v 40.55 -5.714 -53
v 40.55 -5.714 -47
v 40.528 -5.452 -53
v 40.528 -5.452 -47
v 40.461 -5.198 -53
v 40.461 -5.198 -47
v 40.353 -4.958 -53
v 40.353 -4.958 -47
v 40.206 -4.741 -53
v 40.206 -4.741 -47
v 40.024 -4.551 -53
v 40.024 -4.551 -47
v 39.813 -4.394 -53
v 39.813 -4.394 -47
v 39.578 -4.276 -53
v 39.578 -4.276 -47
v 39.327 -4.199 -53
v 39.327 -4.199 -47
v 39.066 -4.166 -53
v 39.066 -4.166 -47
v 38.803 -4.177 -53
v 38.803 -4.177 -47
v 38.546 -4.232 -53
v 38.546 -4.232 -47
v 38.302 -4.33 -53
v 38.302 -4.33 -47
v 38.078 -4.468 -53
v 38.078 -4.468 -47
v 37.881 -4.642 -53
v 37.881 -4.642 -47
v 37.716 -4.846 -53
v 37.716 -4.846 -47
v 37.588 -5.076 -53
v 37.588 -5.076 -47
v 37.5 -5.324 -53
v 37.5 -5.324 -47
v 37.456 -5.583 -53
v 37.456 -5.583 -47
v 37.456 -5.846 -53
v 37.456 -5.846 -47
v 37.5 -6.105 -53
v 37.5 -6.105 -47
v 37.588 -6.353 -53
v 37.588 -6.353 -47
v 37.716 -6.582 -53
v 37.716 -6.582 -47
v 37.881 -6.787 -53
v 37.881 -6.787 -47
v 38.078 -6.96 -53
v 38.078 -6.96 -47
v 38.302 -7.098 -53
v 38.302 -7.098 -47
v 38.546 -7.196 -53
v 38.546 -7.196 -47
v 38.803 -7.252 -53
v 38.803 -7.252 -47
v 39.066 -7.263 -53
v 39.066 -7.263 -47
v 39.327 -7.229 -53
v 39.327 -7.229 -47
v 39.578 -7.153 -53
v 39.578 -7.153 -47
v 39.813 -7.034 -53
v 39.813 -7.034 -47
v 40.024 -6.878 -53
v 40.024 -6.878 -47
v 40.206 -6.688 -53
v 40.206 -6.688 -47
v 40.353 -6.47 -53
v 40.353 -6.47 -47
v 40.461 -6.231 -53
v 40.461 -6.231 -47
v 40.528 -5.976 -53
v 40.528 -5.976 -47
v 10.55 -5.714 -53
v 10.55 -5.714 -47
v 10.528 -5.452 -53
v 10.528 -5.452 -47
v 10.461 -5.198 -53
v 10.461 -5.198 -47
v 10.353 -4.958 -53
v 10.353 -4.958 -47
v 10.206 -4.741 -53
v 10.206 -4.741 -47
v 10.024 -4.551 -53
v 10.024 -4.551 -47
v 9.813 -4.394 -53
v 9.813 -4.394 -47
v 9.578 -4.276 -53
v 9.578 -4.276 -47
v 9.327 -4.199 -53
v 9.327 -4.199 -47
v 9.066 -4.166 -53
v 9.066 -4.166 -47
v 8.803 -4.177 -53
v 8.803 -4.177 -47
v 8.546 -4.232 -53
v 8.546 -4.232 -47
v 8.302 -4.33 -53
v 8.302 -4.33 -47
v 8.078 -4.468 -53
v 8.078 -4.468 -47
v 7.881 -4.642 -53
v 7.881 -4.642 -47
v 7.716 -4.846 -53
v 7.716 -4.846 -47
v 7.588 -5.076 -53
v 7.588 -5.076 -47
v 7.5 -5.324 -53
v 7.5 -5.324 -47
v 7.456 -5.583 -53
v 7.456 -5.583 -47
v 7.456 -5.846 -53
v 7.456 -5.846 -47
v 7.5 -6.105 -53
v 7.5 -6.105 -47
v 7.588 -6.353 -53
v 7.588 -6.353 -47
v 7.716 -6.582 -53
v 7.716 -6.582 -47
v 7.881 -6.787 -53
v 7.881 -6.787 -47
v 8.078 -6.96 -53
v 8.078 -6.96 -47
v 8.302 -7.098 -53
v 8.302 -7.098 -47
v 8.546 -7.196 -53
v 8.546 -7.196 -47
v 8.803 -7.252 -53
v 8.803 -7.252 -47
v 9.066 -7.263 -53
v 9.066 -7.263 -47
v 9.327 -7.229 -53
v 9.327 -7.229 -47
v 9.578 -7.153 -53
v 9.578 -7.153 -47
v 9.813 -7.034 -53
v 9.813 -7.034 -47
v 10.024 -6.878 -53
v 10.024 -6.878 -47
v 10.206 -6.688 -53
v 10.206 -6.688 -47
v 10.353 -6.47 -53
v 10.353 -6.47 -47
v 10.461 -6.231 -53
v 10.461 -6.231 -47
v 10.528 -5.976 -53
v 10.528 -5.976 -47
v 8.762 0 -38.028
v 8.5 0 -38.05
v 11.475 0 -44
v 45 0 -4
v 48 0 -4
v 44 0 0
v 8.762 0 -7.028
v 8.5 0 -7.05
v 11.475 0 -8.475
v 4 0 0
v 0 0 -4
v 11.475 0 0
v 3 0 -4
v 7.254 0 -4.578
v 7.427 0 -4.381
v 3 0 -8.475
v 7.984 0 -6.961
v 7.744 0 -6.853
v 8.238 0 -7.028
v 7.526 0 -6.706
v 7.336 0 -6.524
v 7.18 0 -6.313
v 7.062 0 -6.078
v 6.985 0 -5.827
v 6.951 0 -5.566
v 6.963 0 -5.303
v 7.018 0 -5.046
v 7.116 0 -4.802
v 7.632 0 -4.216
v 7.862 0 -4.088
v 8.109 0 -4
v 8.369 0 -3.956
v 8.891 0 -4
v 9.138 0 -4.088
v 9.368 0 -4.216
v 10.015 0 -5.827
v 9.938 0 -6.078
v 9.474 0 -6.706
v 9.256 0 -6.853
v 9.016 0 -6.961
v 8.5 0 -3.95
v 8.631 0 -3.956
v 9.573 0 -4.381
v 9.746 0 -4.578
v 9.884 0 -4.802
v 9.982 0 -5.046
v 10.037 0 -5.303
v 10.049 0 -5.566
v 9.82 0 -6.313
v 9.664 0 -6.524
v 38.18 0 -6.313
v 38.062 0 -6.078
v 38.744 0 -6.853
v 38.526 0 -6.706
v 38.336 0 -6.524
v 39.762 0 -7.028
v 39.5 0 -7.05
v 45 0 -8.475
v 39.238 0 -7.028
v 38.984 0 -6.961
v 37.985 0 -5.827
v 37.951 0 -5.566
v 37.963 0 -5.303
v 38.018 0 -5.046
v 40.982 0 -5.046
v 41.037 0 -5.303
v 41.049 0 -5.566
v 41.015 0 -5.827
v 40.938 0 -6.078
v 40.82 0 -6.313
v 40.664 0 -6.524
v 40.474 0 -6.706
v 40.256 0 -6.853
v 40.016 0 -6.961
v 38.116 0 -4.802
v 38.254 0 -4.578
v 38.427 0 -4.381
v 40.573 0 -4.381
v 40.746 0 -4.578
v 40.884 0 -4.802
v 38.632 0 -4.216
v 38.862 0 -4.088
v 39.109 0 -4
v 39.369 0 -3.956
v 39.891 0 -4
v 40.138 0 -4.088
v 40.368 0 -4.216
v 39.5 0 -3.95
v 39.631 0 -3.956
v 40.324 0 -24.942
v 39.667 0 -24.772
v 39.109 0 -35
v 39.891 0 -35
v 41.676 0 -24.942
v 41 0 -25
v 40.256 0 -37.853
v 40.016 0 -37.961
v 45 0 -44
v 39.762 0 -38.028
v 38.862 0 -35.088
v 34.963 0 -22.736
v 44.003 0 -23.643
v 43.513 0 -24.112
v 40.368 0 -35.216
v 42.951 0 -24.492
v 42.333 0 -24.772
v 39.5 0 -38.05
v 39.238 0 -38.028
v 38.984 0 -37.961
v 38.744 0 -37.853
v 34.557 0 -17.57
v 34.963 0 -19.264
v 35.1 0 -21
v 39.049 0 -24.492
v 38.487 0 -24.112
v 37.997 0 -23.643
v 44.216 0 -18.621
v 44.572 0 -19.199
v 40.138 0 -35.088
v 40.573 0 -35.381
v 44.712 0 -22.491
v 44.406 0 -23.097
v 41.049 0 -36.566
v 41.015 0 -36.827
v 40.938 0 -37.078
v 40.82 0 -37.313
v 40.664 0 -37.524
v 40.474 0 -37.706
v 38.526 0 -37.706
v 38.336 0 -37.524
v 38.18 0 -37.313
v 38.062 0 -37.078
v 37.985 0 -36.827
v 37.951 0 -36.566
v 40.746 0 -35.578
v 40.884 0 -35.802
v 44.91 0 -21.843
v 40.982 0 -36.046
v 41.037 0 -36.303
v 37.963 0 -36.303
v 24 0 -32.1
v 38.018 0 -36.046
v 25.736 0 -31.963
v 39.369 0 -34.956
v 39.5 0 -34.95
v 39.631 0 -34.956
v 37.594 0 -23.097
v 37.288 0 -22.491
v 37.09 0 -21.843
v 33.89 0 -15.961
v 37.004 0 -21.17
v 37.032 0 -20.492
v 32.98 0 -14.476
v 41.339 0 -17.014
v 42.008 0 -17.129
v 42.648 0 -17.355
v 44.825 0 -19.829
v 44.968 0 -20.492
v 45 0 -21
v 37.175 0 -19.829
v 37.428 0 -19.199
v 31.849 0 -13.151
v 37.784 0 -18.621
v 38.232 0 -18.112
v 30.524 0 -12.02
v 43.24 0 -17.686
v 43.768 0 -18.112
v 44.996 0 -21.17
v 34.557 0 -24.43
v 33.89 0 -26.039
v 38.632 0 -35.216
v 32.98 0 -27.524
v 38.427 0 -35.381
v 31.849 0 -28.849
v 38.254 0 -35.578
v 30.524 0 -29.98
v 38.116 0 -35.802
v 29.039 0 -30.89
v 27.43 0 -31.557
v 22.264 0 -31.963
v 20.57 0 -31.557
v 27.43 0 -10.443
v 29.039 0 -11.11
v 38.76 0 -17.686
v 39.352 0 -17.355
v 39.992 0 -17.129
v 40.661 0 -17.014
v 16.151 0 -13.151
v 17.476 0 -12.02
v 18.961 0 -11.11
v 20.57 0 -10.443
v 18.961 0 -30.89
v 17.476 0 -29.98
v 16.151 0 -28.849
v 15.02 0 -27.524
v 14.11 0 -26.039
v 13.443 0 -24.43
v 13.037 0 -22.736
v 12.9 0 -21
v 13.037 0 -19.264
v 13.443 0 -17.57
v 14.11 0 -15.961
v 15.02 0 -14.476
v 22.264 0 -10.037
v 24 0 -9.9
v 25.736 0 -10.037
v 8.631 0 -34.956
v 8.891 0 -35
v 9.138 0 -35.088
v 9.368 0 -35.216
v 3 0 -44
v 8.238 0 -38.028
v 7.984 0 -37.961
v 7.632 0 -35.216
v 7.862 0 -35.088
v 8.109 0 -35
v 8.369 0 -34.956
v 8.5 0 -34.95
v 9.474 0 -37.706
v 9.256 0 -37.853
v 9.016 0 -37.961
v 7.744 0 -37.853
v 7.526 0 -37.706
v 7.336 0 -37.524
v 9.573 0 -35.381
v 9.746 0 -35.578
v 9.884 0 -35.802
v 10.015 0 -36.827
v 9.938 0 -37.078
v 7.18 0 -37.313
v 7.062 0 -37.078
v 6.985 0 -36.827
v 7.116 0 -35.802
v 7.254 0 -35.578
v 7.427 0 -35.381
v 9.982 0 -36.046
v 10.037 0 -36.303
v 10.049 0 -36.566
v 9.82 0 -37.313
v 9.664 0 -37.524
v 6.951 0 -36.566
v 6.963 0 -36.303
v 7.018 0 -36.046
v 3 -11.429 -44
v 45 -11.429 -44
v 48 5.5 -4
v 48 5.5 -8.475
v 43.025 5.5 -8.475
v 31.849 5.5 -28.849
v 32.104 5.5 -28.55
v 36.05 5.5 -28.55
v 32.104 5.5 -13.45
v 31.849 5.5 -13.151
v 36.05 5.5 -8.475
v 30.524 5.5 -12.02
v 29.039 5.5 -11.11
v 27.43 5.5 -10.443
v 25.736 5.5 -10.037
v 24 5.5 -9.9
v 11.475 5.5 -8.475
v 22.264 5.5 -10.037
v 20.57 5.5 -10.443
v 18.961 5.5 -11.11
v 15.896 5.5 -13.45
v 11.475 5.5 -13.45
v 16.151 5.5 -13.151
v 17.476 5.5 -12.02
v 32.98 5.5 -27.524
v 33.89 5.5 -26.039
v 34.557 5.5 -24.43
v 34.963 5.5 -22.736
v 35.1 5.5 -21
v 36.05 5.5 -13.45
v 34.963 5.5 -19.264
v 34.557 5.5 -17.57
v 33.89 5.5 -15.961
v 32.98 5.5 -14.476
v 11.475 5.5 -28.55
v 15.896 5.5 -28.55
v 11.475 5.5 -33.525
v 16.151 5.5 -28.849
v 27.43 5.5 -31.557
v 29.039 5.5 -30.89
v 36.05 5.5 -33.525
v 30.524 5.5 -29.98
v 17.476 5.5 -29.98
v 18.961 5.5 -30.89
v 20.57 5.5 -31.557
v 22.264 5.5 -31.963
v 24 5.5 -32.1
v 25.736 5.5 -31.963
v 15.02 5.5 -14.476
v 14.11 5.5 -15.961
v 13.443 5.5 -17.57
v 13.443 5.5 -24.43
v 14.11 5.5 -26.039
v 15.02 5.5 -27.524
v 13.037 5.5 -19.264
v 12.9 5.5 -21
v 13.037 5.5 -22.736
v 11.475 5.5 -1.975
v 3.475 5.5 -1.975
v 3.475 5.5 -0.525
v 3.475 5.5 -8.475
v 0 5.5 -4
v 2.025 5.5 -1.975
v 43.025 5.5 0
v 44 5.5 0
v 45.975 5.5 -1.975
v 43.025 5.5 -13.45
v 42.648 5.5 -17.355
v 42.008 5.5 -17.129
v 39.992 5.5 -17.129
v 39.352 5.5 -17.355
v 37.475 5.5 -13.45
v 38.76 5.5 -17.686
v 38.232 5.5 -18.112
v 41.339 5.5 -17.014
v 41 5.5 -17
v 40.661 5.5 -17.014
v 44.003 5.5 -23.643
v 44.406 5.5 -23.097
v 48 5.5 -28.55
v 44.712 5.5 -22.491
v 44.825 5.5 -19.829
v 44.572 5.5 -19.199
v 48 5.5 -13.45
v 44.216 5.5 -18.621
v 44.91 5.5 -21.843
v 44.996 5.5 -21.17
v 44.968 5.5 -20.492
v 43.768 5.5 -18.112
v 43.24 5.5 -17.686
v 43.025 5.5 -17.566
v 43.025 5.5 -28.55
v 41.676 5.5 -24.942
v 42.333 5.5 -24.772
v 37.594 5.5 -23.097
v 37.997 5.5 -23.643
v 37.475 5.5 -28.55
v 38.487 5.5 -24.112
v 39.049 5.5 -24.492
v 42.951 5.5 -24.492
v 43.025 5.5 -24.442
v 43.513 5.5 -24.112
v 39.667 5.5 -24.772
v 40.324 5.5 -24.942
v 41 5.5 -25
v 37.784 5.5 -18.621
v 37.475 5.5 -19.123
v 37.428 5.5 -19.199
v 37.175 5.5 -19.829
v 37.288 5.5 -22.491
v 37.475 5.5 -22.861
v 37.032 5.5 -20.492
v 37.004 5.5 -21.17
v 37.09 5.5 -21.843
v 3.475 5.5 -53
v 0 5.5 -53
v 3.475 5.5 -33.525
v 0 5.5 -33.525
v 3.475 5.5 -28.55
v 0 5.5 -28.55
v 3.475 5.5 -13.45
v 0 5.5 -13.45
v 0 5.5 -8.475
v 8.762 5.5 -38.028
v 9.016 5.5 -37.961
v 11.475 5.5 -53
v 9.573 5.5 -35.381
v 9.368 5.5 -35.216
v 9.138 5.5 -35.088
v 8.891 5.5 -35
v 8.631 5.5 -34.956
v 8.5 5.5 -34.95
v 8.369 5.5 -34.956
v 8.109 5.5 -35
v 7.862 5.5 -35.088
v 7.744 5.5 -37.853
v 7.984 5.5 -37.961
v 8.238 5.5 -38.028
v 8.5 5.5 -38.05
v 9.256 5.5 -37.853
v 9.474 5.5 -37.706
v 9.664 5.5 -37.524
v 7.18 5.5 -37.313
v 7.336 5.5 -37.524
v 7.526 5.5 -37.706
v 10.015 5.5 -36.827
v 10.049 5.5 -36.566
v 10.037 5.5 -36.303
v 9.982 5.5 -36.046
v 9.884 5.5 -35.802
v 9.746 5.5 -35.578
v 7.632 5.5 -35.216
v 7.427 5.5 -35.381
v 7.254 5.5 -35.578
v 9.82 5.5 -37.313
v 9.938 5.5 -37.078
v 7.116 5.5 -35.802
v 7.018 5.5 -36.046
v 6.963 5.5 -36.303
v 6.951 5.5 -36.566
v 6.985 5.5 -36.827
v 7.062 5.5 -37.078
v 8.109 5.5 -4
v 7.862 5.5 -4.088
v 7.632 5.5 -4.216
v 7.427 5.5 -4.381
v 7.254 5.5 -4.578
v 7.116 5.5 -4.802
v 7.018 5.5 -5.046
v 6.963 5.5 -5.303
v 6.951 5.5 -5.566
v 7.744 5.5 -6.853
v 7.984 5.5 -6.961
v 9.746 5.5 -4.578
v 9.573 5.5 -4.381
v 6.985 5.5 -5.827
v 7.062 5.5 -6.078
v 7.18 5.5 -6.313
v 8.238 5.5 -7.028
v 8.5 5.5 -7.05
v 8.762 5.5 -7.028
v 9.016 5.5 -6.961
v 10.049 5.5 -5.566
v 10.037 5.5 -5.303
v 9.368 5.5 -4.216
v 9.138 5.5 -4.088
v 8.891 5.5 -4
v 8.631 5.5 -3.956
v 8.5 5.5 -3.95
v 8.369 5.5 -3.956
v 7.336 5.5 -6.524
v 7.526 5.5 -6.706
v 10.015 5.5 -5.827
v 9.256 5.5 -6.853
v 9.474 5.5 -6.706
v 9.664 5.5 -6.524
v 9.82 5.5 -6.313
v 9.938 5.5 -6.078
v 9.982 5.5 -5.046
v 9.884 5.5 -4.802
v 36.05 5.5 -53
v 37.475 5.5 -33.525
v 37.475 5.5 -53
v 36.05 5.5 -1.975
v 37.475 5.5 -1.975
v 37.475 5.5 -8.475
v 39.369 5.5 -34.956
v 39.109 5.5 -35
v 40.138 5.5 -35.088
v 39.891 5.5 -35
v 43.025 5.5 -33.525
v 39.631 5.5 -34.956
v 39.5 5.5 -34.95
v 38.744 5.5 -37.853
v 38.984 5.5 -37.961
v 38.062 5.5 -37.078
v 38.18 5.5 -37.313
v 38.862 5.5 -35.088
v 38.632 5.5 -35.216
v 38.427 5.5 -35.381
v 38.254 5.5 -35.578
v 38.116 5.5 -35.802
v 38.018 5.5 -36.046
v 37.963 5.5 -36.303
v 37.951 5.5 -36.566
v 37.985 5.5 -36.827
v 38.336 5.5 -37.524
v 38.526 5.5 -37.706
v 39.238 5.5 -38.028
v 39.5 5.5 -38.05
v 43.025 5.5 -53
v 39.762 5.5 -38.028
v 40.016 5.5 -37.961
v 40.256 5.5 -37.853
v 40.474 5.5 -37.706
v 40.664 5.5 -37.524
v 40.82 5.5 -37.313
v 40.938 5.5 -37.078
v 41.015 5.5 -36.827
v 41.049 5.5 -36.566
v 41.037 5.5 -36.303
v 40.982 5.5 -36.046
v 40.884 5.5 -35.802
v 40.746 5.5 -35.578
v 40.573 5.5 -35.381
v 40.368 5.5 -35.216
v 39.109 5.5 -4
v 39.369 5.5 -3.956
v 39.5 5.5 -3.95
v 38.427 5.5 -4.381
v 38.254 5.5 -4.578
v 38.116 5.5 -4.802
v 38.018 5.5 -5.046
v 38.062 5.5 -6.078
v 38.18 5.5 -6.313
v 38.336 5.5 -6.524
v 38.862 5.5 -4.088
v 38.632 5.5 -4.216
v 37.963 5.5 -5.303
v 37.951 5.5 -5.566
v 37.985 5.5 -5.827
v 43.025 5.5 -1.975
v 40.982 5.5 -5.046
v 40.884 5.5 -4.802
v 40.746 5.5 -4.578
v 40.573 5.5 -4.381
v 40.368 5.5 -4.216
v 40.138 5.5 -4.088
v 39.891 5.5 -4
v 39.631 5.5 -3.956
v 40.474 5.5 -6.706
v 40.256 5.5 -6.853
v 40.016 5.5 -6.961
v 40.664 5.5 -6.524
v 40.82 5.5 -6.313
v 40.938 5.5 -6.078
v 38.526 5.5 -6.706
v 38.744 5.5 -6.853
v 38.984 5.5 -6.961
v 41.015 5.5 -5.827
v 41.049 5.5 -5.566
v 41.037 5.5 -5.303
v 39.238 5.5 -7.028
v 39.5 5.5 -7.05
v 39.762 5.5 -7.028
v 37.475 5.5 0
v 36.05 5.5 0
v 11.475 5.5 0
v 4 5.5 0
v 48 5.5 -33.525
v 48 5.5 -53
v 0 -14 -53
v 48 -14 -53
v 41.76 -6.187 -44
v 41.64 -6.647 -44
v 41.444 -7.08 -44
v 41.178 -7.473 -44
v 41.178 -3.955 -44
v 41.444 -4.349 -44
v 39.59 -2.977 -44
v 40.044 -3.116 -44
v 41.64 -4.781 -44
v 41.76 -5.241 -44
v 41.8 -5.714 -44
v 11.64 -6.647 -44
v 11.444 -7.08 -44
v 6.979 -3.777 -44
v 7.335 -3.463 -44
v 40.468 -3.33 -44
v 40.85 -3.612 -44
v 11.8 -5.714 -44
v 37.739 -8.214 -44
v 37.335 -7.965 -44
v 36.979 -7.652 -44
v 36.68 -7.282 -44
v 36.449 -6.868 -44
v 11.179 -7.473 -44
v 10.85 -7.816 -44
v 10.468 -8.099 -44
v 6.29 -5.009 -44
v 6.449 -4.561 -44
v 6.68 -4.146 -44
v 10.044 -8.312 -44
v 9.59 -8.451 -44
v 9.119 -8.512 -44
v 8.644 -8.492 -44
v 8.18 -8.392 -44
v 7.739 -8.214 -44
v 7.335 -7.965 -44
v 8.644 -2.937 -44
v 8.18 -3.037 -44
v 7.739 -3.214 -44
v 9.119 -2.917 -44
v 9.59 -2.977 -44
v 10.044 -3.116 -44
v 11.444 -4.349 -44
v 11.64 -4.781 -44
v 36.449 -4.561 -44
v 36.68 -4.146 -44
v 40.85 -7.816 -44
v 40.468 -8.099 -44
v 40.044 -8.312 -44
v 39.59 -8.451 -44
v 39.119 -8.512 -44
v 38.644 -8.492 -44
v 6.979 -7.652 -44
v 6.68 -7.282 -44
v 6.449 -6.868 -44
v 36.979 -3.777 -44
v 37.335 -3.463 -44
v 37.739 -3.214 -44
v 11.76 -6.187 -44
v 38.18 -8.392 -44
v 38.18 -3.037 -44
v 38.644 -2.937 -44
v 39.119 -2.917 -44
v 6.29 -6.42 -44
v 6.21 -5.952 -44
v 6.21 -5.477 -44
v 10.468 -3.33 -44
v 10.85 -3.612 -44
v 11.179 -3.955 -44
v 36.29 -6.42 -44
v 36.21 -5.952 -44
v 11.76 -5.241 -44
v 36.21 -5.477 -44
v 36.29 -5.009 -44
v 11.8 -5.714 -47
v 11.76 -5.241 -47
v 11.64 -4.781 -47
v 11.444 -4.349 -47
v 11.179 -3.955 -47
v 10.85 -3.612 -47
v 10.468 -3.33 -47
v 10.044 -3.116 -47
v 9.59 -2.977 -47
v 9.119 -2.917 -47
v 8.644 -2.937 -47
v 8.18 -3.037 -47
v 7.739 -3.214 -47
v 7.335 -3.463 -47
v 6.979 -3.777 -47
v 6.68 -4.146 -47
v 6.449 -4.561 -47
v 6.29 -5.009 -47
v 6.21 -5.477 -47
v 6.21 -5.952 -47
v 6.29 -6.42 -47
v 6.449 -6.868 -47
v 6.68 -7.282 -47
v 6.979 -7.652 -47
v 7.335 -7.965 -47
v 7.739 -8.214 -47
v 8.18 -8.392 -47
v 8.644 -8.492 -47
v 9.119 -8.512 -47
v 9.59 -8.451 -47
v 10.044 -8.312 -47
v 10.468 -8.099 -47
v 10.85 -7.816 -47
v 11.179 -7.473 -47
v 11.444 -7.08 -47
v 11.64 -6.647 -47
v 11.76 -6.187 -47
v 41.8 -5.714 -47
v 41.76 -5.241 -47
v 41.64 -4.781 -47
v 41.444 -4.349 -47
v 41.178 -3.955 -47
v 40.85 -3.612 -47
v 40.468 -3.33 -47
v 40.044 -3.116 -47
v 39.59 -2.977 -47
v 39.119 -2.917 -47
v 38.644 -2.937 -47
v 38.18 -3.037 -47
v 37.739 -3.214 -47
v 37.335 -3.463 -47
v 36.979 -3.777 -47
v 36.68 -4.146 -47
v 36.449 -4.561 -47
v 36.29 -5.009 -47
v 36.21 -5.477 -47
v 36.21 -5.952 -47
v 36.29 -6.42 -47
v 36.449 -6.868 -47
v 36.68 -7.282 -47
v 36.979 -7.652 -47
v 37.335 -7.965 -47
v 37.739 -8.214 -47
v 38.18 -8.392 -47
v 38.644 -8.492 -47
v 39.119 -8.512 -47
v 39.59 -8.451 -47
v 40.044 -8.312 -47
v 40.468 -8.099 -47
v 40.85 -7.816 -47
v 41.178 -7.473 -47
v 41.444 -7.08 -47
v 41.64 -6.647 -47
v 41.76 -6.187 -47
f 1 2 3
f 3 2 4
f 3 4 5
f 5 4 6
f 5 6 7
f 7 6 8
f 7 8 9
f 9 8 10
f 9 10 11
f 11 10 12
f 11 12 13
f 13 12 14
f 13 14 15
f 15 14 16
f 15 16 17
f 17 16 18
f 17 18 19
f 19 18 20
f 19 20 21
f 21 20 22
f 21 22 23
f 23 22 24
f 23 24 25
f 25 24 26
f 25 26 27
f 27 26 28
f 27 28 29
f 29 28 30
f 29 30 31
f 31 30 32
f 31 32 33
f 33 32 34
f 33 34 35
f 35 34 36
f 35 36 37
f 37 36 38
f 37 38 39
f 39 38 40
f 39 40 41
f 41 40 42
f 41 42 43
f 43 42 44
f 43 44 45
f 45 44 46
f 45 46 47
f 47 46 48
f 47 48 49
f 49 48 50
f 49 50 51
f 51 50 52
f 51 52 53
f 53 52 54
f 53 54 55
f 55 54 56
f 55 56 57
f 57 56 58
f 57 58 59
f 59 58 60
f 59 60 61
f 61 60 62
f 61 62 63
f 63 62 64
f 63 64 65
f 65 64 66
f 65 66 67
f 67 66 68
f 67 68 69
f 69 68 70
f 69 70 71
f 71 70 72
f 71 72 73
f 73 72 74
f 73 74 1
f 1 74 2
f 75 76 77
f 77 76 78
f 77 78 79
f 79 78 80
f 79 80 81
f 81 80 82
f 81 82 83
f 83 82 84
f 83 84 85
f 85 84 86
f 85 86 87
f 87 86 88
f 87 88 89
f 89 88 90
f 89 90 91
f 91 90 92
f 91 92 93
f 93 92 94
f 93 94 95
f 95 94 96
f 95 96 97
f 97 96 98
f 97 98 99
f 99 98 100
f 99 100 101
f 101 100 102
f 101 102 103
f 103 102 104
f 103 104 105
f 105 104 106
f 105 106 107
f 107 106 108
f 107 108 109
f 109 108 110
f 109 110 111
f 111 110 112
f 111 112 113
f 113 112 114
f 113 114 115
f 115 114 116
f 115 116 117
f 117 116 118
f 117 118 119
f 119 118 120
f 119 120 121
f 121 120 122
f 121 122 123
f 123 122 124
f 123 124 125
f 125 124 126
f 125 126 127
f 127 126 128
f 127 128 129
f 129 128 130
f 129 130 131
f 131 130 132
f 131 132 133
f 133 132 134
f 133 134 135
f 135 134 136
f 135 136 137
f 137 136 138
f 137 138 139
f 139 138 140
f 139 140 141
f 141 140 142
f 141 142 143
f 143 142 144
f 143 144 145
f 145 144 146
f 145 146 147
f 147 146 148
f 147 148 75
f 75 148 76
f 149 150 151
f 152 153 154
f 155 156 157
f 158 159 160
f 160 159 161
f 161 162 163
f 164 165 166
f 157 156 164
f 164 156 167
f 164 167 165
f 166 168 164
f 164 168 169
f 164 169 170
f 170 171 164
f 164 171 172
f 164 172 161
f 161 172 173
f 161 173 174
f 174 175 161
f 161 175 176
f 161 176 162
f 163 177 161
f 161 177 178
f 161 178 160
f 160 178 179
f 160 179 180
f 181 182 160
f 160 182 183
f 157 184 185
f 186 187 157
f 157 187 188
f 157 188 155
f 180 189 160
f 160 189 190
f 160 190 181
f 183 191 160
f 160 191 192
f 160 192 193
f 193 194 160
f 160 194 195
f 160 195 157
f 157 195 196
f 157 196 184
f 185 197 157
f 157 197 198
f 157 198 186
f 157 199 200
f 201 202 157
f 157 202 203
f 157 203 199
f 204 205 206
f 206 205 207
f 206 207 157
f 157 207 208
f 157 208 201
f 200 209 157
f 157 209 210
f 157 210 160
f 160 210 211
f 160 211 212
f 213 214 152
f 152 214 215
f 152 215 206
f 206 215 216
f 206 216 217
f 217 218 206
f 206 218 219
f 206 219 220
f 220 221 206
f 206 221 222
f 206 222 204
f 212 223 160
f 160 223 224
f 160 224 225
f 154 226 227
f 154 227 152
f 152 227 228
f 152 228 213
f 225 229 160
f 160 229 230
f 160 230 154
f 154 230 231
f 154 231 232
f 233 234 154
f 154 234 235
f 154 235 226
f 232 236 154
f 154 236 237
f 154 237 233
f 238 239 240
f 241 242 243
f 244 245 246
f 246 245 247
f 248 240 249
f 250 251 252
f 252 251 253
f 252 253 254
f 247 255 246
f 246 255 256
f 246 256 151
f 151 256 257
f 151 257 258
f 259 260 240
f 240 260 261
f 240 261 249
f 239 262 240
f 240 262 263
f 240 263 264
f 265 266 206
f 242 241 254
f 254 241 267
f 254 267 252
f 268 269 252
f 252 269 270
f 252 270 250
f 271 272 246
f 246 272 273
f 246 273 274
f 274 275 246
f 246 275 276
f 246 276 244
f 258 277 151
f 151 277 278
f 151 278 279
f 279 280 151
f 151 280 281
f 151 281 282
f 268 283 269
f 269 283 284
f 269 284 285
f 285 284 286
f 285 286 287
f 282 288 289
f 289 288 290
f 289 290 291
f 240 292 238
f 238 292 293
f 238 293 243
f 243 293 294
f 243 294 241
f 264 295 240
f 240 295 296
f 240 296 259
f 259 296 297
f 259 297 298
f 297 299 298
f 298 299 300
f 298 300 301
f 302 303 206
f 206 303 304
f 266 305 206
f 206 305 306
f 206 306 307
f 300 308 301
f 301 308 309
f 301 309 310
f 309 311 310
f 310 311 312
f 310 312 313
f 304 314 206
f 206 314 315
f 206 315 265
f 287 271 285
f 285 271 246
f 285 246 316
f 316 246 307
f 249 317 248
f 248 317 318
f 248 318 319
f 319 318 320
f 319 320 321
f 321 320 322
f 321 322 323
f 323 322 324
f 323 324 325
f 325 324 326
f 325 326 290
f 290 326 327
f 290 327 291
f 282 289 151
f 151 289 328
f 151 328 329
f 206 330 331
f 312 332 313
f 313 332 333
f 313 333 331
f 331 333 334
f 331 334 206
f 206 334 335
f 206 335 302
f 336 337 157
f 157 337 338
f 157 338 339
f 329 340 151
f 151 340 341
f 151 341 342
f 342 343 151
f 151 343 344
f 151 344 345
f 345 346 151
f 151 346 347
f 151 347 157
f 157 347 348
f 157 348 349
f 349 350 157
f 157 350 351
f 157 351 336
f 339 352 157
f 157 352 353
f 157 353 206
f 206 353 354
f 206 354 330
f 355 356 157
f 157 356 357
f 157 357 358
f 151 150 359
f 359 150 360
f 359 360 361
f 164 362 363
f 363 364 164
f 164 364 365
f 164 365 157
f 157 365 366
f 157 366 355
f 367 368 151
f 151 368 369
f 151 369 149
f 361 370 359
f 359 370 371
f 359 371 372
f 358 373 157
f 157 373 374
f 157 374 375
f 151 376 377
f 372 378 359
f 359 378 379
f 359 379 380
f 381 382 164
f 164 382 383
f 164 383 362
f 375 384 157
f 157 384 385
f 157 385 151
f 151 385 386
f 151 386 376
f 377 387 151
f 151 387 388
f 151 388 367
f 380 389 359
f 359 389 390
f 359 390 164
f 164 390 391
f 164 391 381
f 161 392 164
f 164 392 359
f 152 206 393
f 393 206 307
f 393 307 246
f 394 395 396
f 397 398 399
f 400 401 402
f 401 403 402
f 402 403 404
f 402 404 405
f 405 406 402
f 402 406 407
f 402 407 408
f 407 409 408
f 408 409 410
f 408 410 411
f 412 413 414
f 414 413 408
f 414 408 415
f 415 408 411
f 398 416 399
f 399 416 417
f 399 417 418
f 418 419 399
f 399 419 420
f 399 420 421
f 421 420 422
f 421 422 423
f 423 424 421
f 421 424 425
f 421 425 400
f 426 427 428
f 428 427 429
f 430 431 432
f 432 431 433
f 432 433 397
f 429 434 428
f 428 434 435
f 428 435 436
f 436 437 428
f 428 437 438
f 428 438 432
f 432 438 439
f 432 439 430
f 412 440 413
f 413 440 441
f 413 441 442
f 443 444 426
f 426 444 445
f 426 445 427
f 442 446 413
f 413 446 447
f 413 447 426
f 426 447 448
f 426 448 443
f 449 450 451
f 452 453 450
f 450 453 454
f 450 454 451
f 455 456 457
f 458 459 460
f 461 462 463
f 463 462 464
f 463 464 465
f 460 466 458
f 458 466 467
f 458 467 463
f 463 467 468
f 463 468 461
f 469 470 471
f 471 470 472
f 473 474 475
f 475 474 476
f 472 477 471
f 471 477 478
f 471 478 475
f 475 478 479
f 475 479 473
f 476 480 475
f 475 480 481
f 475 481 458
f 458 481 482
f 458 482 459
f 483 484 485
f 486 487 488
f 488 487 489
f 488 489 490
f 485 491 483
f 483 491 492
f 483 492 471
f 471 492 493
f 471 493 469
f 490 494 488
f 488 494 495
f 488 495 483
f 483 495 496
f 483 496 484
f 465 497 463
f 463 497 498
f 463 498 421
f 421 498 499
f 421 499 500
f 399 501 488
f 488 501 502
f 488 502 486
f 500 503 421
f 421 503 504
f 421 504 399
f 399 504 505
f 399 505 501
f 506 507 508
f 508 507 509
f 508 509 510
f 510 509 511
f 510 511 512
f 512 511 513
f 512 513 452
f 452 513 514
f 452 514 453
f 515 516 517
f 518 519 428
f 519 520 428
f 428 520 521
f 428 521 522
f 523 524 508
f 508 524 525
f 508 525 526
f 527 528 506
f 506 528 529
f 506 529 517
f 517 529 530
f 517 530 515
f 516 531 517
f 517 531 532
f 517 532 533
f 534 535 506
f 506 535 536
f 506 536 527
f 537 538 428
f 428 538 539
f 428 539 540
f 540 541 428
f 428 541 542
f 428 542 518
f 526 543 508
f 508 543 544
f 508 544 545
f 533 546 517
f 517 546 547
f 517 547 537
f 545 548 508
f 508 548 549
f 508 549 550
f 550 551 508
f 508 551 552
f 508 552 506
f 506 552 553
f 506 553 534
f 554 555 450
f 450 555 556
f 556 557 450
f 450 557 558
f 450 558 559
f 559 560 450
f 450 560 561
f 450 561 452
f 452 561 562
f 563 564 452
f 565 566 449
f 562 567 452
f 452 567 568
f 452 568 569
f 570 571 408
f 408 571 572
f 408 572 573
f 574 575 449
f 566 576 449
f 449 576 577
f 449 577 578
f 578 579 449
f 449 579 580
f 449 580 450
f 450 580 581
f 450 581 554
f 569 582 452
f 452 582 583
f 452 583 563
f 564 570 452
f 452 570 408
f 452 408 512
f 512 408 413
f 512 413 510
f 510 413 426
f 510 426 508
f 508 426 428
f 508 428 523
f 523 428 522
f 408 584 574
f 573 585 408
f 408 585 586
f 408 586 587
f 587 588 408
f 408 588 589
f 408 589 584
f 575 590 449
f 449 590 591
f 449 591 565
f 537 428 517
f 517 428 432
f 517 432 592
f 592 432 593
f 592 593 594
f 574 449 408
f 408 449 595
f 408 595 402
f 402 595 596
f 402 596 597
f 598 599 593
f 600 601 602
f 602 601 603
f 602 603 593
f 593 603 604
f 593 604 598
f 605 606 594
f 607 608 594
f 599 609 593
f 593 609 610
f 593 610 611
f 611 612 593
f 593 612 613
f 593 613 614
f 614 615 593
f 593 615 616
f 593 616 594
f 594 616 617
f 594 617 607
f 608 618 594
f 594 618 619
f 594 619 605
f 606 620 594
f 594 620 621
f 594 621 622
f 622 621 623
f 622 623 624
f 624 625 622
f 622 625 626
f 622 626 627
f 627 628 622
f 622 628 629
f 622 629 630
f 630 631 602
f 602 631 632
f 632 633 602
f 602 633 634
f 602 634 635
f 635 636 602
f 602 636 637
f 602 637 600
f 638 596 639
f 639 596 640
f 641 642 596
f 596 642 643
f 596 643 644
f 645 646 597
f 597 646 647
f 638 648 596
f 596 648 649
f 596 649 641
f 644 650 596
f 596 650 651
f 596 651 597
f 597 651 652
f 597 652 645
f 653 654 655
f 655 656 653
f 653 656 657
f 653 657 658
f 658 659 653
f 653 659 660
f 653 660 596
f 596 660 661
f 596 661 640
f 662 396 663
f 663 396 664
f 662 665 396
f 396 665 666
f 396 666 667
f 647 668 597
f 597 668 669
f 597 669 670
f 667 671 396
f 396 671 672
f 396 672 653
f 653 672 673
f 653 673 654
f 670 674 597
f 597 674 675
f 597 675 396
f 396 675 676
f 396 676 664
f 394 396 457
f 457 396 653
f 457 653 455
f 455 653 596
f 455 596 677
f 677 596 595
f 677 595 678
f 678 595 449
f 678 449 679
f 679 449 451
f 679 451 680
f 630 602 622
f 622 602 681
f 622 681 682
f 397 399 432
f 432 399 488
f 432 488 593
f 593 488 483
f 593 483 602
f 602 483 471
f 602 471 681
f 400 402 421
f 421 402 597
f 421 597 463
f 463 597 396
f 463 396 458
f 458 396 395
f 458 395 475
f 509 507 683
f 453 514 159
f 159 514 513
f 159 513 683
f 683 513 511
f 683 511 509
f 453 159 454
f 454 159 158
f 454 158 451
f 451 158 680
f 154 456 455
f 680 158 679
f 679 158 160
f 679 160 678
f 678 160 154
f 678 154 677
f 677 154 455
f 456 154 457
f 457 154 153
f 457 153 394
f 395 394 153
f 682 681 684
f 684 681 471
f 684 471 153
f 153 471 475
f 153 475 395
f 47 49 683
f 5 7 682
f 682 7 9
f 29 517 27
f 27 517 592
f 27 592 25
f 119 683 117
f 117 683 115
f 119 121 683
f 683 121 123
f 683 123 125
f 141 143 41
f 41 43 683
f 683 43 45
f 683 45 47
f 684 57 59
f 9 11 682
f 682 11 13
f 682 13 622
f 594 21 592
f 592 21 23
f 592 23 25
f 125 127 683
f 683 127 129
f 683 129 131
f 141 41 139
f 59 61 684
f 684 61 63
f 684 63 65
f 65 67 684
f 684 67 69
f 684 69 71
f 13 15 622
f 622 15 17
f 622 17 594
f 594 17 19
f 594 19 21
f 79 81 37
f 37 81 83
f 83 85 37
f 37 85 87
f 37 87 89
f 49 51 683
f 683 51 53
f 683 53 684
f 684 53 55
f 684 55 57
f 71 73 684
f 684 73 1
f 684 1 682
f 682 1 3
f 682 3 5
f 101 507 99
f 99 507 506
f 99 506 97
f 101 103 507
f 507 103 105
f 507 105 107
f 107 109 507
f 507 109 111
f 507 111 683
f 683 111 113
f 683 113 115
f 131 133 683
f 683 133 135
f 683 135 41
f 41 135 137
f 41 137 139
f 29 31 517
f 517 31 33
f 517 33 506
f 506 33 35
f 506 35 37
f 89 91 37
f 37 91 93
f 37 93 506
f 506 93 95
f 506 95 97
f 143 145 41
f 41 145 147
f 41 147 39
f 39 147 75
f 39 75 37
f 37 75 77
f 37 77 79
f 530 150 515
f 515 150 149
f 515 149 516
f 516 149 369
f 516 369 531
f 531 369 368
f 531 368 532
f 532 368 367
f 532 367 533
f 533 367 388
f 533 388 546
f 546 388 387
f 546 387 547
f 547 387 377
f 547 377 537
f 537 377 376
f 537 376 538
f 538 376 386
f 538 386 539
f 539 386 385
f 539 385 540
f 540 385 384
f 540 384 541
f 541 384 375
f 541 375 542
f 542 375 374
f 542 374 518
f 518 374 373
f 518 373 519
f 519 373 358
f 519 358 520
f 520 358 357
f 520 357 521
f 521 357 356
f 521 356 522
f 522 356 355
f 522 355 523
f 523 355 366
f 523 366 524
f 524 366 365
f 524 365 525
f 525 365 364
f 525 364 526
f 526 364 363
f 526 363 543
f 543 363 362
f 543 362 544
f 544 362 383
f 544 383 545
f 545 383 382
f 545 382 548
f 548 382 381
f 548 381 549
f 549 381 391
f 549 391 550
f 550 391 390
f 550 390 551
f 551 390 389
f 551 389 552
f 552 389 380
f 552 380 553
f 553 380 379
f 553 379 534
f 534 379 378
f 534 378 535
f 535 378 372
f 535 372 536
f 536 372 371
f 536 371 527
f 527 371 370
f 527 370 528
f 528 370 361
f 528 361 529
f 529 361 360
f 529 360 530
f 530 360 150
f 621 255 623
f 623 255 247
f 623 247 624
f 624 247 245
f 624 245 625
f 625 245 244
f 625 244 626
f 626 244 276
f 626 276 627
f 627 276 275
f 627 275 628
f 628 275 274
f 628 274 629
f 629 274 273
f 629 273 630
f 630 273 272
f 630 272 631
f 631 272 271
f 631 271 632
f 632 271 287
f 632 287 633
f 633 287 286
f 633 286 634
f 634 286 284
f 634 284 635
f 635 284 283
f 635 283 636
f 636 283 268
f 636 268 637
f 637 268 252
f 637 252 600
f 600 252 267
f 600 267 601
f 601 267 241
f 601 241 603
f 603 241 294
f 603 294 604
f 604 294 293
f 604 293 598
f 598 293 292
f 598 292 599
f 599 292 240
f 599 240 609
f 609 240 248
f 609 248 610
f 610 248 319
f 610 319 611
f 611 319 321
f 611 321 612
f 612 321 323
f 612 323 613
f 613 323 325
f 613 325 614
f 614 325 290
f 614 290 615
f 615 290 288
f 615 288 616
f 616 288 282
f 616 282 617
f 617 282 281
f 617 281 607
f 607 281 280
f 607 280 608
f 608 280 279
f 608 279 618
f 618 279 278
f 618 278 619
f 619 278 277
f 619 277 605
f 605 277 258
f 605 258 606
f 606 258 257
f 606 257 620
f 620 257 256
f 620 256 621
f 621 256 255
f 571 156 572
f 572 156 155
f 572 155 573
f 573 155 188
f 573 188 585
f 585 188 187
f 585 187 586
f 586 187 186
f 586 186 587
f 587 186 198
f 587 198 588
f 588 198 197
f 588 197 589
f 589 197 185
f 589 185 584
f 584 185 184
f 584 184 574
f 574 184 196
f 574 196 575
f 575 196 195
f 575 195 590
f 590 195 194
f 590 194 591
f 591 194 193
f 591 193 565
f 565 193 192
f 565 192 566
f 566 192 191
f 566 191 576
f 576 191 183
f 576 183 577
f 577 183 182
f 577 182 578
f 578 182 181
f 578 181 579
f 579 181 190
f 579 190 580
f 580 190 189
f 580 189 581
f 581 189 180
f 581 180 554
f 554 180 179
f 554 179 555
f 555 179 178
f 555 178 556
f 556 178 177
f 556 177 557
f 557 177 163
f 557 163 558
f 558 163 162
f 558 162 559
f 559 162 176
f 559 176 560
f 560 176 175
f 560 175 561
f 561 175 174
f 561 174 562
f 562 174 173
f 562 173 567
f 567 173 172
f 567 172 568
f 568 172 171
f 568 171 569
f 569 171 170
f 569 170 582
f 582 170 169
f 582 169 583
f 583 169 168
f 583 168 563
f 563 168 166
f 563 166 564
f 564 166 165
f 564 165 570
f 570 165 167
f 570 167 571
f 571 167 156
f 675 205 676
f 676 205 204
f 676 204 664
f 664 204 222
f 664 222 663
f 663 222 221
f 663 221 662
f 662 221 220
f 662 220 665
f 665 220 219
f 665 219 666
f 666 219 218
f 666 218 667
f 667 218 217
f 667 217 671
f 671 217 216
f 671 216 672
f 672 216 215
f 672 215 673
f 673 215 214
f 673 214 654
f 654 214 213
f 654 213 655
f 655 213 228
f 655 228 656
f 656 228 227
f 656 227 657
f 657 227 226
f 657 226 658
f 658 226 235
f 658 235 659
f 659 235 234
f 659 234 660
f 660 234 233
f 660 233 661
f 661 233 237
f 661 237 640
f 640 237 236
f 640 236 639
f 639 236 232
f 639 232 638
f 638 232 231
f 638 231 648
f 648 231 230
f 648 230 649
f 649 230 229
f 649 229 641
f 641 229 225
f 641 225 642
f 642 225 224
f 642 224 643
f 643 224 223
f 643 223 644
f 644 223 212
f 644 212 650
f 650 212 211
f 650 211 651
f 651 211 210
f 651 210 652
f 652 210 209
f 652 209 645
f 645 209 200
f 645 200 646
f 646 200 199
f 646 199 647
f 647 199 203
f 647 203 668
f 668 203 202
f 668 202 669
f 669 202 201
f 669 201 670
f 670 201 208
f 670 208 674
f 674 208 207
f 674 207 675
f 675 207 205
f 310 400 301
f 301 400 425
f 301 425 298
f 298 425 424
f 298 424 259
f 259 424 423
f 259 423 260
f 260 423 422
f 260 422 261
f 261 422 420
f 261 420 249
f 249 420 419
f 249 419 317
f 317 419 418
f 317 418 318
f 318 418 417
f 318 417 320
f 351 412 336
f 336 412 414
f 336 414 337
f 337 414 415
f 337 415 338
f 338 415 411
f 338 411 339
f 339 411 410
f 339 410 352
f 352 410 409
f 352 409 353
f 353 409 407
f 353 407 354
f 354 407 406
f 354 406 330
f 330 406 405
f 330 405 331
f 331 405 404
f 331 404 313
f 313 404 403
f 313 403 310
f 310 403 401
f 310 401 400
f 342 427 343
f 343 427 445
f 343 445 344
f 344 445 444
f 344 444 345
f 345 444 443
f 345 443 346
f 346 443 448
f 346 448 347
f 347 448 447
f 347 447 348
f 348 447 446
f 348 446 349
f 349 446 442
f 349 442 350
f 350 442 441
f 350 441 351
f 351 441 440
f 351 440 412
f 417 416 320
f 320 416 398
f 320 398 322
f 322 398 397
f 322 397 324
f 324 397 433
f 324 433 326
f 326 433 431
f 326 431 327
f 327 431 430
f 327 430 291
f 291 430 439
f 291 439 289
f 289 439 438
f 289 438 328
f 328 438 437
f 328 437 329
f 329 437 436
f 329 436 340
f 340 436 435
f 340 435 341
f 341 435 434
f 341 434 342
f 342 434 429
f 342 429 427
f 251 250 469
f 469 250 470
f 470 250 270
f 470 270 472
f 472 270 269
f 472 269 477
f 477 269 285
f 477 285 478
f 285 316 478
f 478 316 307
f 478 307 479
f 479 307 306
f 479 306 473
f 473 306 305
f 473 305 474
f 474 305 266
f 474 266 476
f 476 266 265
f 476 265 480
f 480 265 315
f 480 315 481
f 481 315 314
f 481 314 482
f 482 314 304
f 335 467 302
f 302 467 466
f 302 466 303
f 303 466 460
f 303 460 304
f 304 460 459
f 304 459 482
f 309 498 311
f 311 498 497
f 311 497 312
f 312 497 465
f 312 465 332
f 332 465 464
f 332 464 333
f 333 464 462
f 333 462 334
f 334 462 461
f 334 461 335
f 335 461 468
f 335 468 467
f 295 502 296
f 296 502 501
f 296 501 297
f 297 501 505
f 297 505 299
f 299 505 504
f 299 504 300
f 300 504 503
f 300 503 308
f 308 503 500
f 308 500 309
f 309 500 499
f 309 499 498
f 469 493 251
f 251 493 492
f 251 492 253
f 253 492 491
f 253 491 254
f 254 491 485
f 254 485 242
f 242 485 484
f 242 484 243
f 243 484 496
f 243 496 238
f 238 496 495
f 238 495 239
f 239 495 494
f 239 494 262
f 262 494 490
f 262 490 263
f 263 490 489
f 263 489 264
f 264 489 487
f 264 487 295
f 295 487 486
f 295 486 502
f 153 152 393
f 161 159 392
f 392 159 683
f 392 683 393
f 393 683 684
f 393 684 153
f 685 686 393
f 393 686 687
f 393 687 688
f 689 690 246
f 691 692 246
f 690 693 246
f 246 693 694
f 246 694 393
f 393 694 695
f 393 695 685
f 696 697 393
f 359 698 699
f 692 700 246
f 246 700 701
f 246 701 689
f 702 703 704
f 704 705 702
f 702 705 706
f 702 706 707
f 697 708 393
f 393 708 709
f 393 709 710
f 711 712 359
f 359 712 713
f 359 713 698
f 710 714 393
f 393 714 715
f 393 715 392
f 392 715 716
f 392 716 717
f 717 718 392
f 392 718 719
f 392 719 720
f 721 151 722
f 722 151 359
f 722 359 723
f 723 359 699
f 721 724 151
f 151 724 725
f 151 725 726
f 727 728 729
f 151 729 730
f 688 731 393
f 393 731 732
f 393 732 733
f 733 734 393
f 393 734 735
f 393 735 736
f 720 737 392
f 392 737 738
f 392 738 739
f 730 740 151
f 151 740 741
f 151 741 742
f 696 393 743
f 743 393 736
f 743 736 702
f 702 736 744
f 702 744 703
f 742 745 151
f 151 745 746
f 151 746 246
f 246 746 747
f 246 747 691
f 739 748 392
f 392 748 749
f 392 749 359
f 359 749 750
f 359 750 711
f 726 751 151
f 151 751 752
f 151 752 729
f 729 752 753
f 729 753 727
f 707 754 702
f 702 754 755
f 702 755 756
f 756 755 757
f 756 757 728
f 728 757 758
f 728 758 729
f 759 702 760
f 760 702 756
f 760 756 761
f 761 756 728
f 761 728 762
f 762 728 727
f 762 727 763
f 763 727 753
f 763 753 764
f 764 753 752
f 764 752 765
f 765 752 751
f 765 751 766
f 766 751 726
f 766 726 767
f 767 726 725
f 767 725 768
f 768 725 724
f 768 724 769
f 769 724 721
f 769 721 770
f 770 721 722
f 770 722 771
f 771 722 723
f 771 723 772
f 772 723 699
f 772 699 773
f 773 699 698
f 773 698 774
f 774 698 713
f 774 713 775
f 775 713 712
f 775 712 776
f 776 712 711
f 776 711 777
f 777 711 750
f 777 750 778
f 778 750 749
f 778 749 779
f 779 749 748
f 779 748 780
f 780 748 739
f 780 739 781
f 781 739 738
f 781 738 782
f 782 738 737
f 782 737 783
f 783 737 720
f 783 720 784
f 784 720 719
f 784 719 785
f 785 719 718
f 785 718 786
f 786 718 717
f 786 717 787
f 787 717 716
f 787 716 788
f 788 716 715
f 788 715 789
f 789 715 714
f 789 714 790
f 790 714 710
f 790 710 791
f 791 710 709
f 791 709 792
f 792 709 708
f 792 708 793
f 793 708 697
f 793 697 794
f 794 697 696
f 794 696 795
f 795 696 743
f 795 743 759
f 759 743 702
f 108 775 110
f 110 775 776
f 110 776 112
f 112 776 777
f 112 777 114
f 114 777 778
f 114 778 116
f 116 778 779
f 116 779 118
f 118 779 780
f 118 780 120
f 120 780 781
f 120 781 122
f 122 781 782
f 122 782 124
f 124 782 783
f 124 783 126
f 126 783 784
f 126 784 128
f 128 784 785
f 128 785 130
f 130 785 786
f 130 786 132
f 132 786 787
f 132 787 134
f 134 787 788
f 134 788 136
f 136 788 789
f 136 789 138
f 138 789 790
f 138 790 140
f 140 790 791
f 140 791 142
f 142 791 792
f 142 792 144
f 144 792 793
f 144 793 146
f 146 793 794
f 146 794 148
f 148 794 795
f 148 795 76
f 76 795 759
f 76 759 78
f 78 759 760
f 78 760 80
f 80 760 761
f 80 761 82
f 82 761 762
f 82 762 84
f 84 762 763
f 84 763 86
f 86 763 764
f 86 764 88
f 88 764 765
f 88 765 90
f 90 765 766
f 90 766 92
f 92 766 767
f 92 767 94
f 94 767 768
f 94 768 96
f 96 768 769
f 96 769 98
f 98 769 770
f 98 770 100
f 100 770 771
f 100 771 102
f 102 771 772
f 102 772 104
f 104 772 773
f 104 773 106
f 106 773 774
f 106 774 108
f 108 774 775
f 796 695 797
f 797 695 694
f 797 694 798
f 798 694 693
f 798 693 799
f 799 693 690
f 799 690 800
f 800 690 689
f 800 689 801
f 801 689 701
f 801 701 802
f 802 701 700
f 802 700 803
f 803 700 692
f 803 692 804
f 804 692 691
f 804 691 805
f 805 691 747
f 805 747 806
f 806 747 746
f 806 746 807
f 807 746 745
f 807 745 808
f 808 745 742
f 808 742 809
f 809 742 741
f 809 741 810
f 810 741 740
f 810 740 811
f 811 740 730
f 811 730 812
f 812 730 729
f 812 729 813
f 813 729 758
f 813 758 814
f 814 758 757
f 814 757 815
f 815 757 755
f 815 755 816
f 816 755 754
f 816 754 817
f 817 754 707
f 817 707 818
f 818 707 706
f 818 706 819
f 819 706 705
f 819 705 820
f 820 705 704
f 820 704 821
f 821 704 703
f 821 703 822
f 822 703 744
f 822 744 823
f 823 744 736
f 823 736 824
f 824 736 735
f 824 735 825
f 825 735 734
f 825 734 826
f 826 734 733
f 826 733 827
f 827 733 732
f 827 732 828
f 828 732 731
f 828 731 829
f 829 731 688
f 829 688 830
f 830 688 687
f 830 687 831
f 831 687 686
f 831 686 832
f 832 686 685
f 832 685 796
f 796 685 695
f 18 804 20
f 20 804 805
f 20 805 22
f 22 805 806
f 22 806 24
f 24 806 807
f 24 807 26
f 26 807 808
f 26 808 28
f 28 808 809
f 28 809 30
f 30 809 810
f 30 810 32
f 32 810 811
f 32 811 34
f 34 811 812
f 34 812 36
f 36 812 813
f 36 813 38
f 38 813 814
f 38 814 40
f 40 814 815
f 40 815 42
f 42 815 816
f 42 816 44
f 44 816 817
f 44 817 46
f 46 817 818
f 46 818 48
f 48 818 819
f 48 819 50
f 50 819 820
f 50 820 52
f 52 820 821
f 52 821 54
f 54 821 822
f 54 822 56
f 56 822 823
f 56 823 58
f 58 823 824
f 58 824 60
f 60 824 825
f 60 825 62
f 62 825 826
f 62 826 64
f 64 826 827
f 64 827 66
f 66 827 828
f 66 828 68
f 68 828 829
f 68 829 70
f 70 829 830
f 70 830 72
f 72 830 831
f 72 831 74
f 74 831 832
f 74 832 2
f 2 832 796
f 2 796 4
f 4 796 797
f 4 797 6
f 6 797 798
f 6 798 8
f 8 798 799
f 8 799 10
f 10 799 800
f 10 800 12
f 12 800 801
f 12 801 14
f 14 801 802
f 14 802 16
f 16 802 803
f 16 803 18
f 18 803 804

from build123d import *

# Parameters (mm, degrees)
CROQUIS1_R                 = 1.55
CROQUIS1_R_2               = 11.1
CROQUIS1_R_3               = 4
SALIENTE_EXTRUIR1_DEPTH    = 5.5
SALIENTE_EXTRUIR2_DEPTH    = 5.5
SALIENTE_EXTRUIR3_DEPTH    = 3
SALIENTE_EXTRUIR4_DEPTH    = 5.5
SALIENTE_EXTRUIR5_DEPTH    = 3
CROQUIS7_W                 = 42
CROQUIS7_H                 = 9
SALIENTE_EXTRUIR6_DEPTH    = 14
CROQUIS9_R                 = 1.55
CORTAR_EXTRUIR1_DEPTH      = 9
CROQUIS10_R                = 2.85
CROQUIS10_R_2              = 1.55
CORTAR_EXTRUIR2_DEPTH      = 3
CORTAR_EXTRUIR3_DEPTH      = 4
CORTAR_EXTRUIR3_DEPTH_BACK = 46


with BuildPart() as part:
    # Croquis1 → Saliente-Extruir1 (new body)
    with BuildSketch(Plane(origin=(0, 0, 0), x_dir=(1, 0, 0), z_dir=(0, 1, 0))):
        Polygon((0, 4), (0, 49), (4, 53), (44, 53), (48, 49), (48, 4), (44, 0), (4, 0), align=None)
        with Locations((8.5, 36.5)):
            Circle(CROQUIS1_R, mode=Mode.SUBTRACT)
        with Locations((39.5, 36.5)):
            Circle(CROQUIS1_R, mode=Mode.SUBTRACT)
        with Locations((8.5, 5.5)):
            Circle(CROQUIS1_R, mode=Mode.SUBTRACT)
        with Locations((39.5, 5.5)):
            Circle(CROQUIS1_R, mode=Mode.SUBTRACT)
        with Locations((24, 21)):
            Circle(CROQUIS1_R_2, mode=Mode.SUBTRACT)
        with Locations((41, 21)):
            Circle(CROQUIS1_R_3, mode=Mode.SUBTRACT)
    extrude(amount=SALIENTE_EXTRUIR1_DEPTH)

    # Croquis3 → Saliente-Extruir2 (add)
    with BuildSketch(Plane(origin=(0, 5.5, 0), x_dir=(1, 0, 0), z_dir=(0, 1, 0))):
        Polygon((4, 53), (0, 53), (0, 49), align=None)
    extrude(amount=-SALIENTE_EXTRUIR2_DEPTH)

    # Croquis4 → Saliente-Extruir3 (add)
    with BuildSketch(Plane.ZY):
        Polygon((-53, 0), (-53, 5.5), (-4, 5.5), (-4, 0), (-53, -14), align=None)
    extrude(amount=-SALIENTE_EXTRUIR3_DEPTH)

    # Croquis5 → Saliente-Extruir4 (add)
    with BuildSketch(Plane(origin=(0, 5.5, 0), x_dir=(1, 0, 0), z_dir=(0, 1, 0))):
        Polygon((48, 49), (48, 53), (44, 53), align=None)
    extrude(amount=-SALIENTE_EXTRUIR4_DEPTH)

    # Croquis6 → Saliente-Extruir5 (add)
    with BuildSketch(Plane(origin=(48, 0, 0), x_dir=(0, 0, -1), z_dir=(1, 0, 0))):
        Polygon((4, 5.5), (4, 0), (53, -14), (53, 0), (53, 5.5), align=None)
    extrude(amount=-SALIENTE_EXTRUIR5_DEPTH)

    # Croquis7 → Saliente-Extruir6 (add)
    with BuildSketch(Plane.XZ):
        with Locations((24, -48.5)):
            Rectangle(CROQUIS7_W, CROQUIS7_H)
    extrude(amount=SALIENTE_EXTRUIR6_DEPTH)

    # Croquis9 → Cortar-Extruir1 (cut)
    with BuildSketch(Plane.XY.offset(-44)):
        with Locations((9, -5.714285714)):
            Circle(CROQUIS9_R)
        with Locations((39, -5.714285714)):
            Circle(CROQUIS9_R)
    extrude(amount=-CORTAR_EXTRUIR1_DEPTH, mode=Mode.SUBTRACT)

    # Croquis10 → Cortar-Extruir2 (cut)
    with BuildSketch(Plane.XY.offset(-44)):
        with Locations((9, -5.714285714)):
            Circle(CROQUIS10_R)
        with Locations((9, -5.714285714)):
            Circle(CROQUIS10_R_2, mode=Mode.SUBTRACT)
        with Locations((39, -5.714285714)):
            Circle(CROQUIS10_R)
        with Locations((39, -5.714285714)):
            Circle(CROQUIS10_R_2, mode=Mode.SUBTRACT)
    extrude(amount=-CORTAR_EXTRUIR2_DEPTH, mode=Mode.SUBTRACT)

    # Croquis11 → Cortar-Extruir3 (cut, two sides)
    with BuildSketch(Plane.ZY.offset(-3)) as cortar_extruir3_sk:
        Polygon((-44, -11.428571429), (-53, -14), (-44, -14), align=None)
    extrude(amount=CORTAR_EXTRUIR3_DEPTH, mode=Mode.SUBTRACT)
    extrude(cortar_extruir3_sk.sketch, amount=-CORTAR_EXTRUIR3_DEPTH_BACK, mode=Mode.SUBTRACT)


solid = part.part
